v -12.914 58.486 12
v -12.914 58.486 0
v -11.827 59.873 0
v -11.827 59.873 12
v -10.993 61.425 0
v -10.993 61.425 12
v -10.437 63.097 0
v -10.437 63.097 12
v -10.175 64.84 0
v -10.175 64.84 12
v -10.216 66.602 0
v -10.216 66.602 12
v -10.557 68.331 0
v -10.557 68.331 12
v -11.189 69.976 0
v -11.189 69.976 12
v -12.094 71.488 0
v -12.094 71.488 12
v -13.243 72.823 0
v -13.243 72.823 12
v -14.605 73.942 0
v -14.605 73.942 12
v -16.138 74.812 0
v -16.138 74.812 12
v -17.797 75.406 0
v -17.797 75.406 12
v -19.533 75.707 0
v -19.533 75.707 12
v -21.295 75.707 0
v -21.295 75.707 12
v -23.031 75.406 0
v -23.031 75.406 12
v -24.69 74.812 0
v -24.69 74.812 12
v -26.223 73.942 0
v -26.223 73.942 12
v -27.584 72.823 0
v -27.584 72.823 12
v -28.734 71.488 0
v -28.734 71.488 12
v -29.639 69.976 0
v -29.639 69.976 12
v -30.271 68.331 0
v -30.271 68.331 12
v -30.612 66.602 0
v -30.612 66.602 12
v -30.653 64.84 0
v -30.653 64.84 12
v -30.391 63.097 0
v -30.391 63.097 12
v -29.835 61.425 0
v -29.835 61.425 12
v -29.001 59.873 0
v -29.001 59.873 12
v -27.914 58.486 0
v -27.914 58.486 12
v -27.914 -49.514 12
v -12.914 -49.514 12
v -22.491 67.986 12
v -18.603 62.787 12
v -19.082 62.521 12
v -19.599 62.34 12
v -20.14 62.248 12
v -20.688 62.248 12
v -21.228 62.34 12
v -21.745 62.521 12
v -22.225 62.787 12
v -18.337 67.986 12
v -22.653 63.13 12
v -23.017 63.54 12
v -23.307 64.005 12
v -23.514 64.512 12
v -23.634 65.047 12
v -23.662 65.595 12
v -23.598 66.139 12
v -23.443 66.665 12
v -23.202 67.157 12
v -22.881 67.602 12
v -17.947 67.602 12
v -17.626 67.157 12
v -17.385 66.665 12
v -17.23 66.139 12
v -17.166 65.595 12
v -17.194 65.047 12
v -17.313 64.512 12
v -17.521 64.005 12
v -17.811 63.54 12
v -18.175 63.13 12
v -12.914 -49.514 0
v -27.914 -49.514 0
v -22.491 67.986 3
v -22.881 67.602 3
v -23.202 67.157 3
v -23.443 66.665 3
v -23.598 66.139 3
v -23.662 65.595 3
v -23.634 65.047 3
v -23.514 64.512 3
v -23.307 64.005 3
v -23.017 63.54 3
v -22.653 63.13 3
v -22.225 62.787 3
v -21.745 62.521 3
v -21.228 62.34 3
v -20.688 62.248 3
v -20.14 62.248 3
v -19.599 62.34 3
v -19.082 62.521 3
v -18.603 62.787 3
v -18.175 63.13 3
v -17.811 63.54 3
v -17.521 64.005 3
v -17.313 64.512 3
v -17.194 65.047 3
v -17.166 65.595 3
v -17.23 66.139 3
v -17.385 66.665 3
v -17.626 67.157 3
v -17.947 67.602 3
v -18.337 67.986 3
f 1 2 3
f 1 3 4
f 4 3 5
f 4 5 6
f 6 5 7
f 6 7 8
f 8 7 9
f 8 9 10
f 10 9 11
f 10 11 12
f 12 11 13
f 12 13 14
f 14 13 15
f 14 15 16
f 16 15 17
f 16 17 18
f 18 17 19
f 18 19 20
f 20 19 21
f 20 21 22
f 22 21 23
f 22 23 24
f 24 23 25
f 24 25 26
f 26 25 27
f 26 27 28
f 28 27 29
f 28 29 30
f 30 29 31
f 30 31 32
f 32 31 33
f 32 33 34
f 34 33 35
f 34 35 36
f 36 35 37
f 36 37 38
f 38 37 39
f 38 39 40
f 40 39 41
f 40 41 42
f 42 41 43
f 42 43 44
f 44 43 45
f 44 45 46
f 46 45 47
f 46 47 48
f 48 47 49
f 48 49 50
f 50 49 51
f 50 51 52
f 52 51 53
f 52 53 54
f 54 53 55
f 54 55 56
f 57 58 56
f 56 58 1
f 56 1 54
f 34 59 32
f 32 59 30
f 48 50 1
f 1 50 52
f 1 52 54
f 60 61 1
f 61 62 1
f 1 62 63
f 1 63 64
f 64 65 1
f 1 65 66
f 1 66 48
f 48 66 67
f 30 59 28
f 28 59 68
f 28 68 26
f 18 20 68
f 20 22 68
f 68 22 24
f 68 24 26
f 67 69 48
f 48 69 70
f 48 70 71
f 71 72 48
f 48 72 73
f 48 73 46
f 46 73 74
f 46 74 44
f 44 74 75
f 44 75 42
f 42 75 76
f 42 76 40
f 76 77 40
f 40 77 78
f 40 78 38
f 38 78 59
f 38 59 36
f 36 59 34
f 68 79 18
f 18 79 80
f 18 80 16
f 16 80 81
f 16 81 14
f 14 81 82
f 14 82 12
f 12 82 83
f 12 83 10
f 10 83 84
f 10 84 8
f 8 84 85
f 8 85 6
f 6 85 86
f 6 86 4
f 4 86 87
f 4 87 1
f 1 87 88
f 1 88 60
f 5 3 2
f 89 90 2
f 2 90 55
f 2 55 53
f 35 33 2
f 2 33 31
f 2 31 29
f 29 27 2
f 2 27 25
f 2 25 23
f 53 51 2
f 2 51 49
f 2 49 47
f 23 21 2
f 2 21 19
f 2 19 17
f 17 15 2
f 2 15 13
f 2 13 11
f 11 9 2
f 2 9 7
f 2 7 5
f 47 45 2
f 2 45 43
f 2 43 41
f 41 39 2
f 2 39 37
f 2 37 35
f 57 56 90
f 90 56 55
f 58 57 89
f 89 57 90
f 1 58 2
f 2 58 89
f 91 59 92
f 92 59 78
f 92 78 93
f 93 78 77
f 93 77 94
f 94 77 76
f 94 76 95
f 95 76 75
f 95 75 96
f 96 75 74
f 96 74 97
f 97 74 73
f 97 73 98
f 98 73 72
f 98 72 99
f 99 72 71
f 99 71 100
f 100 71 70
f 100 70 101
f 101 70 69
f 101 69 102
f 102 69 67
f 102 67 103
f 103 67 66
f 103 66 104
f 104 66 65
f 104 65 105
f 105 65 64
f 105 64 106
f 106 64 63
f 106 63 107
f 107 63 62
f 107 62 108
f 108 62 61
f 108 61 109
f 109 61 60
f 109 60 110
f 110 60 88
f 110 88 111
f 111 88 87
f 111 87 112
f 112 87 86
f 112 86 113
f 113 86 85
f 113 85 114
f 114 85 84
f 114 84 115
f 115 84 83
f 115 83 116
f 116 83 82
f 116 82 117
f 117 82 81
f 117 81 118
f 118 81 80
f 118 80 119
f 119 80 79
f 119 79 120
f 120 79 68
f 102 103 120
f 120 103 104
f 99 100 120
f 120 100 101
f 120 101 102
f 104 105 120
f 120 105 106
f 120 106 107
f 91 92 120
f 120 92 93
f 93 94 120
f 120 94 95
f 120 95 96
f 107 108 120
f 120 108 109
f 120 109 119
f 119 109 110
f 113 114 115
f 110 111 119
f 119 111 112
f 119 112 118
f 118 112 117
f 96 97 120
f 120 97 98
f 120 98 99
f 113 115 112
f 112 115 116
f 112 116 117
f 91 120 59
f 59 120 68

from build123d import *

# Parameters (mm, degrees)
SKETCH1_R           = 10.259142264
SKETCH1_W           = 15
SKETCH1_H           = 108
BOSS_EXTRUDE1_DEPTH = 12
SKETCH2_R           = 3.25
CUT_EXTRUDE1_DEPTH  = 9
BOSS_EXTRUDE2_DEPTH = 9


with BuildPart() as part:
    # Sketch1 → Boss-Extrude1 (new body)
    with BuildSketch(Plane.XY):
        with Locations((-20.413846154, 65.486153846)):
            Circle(SKETCH1_R)
        with Locations((-20.413846154, 4.486153846)):
            Rectangle(SKETCH1_W, SKETCH1_H)
    extrude(amount=BOSS_EXTRUDE1_DEPTH)

    # Sketch2 → Cut-Extrude1 (cut)
    with BuildSketch(Plane.XY.offset(12)):
        with Locations((-20.413846154, 65.486153846)):
            Circle(SKETCH2_R)
    extrude(amount=-CUT_EXTRUDE1_DEPTH, mode=Mode.SUBTRACT)

    # Sketch3 → Boss-Extrude2 (add)
    with BuildSketch(Plane.XY.offset(12)):
        with BuildLine():
            Line((-22.49050212, 67.986153846), (-18.337190188, 67.986153846))
            ThreePointArc((-18.337190188, 67.986153846), (-20.413846154, 68.736153846), (-22.49050212, 67.986153846))
        make_face()
    extrude(amount=-BOSS_EXTRUDE2_DEPTH)


solid = part.part
